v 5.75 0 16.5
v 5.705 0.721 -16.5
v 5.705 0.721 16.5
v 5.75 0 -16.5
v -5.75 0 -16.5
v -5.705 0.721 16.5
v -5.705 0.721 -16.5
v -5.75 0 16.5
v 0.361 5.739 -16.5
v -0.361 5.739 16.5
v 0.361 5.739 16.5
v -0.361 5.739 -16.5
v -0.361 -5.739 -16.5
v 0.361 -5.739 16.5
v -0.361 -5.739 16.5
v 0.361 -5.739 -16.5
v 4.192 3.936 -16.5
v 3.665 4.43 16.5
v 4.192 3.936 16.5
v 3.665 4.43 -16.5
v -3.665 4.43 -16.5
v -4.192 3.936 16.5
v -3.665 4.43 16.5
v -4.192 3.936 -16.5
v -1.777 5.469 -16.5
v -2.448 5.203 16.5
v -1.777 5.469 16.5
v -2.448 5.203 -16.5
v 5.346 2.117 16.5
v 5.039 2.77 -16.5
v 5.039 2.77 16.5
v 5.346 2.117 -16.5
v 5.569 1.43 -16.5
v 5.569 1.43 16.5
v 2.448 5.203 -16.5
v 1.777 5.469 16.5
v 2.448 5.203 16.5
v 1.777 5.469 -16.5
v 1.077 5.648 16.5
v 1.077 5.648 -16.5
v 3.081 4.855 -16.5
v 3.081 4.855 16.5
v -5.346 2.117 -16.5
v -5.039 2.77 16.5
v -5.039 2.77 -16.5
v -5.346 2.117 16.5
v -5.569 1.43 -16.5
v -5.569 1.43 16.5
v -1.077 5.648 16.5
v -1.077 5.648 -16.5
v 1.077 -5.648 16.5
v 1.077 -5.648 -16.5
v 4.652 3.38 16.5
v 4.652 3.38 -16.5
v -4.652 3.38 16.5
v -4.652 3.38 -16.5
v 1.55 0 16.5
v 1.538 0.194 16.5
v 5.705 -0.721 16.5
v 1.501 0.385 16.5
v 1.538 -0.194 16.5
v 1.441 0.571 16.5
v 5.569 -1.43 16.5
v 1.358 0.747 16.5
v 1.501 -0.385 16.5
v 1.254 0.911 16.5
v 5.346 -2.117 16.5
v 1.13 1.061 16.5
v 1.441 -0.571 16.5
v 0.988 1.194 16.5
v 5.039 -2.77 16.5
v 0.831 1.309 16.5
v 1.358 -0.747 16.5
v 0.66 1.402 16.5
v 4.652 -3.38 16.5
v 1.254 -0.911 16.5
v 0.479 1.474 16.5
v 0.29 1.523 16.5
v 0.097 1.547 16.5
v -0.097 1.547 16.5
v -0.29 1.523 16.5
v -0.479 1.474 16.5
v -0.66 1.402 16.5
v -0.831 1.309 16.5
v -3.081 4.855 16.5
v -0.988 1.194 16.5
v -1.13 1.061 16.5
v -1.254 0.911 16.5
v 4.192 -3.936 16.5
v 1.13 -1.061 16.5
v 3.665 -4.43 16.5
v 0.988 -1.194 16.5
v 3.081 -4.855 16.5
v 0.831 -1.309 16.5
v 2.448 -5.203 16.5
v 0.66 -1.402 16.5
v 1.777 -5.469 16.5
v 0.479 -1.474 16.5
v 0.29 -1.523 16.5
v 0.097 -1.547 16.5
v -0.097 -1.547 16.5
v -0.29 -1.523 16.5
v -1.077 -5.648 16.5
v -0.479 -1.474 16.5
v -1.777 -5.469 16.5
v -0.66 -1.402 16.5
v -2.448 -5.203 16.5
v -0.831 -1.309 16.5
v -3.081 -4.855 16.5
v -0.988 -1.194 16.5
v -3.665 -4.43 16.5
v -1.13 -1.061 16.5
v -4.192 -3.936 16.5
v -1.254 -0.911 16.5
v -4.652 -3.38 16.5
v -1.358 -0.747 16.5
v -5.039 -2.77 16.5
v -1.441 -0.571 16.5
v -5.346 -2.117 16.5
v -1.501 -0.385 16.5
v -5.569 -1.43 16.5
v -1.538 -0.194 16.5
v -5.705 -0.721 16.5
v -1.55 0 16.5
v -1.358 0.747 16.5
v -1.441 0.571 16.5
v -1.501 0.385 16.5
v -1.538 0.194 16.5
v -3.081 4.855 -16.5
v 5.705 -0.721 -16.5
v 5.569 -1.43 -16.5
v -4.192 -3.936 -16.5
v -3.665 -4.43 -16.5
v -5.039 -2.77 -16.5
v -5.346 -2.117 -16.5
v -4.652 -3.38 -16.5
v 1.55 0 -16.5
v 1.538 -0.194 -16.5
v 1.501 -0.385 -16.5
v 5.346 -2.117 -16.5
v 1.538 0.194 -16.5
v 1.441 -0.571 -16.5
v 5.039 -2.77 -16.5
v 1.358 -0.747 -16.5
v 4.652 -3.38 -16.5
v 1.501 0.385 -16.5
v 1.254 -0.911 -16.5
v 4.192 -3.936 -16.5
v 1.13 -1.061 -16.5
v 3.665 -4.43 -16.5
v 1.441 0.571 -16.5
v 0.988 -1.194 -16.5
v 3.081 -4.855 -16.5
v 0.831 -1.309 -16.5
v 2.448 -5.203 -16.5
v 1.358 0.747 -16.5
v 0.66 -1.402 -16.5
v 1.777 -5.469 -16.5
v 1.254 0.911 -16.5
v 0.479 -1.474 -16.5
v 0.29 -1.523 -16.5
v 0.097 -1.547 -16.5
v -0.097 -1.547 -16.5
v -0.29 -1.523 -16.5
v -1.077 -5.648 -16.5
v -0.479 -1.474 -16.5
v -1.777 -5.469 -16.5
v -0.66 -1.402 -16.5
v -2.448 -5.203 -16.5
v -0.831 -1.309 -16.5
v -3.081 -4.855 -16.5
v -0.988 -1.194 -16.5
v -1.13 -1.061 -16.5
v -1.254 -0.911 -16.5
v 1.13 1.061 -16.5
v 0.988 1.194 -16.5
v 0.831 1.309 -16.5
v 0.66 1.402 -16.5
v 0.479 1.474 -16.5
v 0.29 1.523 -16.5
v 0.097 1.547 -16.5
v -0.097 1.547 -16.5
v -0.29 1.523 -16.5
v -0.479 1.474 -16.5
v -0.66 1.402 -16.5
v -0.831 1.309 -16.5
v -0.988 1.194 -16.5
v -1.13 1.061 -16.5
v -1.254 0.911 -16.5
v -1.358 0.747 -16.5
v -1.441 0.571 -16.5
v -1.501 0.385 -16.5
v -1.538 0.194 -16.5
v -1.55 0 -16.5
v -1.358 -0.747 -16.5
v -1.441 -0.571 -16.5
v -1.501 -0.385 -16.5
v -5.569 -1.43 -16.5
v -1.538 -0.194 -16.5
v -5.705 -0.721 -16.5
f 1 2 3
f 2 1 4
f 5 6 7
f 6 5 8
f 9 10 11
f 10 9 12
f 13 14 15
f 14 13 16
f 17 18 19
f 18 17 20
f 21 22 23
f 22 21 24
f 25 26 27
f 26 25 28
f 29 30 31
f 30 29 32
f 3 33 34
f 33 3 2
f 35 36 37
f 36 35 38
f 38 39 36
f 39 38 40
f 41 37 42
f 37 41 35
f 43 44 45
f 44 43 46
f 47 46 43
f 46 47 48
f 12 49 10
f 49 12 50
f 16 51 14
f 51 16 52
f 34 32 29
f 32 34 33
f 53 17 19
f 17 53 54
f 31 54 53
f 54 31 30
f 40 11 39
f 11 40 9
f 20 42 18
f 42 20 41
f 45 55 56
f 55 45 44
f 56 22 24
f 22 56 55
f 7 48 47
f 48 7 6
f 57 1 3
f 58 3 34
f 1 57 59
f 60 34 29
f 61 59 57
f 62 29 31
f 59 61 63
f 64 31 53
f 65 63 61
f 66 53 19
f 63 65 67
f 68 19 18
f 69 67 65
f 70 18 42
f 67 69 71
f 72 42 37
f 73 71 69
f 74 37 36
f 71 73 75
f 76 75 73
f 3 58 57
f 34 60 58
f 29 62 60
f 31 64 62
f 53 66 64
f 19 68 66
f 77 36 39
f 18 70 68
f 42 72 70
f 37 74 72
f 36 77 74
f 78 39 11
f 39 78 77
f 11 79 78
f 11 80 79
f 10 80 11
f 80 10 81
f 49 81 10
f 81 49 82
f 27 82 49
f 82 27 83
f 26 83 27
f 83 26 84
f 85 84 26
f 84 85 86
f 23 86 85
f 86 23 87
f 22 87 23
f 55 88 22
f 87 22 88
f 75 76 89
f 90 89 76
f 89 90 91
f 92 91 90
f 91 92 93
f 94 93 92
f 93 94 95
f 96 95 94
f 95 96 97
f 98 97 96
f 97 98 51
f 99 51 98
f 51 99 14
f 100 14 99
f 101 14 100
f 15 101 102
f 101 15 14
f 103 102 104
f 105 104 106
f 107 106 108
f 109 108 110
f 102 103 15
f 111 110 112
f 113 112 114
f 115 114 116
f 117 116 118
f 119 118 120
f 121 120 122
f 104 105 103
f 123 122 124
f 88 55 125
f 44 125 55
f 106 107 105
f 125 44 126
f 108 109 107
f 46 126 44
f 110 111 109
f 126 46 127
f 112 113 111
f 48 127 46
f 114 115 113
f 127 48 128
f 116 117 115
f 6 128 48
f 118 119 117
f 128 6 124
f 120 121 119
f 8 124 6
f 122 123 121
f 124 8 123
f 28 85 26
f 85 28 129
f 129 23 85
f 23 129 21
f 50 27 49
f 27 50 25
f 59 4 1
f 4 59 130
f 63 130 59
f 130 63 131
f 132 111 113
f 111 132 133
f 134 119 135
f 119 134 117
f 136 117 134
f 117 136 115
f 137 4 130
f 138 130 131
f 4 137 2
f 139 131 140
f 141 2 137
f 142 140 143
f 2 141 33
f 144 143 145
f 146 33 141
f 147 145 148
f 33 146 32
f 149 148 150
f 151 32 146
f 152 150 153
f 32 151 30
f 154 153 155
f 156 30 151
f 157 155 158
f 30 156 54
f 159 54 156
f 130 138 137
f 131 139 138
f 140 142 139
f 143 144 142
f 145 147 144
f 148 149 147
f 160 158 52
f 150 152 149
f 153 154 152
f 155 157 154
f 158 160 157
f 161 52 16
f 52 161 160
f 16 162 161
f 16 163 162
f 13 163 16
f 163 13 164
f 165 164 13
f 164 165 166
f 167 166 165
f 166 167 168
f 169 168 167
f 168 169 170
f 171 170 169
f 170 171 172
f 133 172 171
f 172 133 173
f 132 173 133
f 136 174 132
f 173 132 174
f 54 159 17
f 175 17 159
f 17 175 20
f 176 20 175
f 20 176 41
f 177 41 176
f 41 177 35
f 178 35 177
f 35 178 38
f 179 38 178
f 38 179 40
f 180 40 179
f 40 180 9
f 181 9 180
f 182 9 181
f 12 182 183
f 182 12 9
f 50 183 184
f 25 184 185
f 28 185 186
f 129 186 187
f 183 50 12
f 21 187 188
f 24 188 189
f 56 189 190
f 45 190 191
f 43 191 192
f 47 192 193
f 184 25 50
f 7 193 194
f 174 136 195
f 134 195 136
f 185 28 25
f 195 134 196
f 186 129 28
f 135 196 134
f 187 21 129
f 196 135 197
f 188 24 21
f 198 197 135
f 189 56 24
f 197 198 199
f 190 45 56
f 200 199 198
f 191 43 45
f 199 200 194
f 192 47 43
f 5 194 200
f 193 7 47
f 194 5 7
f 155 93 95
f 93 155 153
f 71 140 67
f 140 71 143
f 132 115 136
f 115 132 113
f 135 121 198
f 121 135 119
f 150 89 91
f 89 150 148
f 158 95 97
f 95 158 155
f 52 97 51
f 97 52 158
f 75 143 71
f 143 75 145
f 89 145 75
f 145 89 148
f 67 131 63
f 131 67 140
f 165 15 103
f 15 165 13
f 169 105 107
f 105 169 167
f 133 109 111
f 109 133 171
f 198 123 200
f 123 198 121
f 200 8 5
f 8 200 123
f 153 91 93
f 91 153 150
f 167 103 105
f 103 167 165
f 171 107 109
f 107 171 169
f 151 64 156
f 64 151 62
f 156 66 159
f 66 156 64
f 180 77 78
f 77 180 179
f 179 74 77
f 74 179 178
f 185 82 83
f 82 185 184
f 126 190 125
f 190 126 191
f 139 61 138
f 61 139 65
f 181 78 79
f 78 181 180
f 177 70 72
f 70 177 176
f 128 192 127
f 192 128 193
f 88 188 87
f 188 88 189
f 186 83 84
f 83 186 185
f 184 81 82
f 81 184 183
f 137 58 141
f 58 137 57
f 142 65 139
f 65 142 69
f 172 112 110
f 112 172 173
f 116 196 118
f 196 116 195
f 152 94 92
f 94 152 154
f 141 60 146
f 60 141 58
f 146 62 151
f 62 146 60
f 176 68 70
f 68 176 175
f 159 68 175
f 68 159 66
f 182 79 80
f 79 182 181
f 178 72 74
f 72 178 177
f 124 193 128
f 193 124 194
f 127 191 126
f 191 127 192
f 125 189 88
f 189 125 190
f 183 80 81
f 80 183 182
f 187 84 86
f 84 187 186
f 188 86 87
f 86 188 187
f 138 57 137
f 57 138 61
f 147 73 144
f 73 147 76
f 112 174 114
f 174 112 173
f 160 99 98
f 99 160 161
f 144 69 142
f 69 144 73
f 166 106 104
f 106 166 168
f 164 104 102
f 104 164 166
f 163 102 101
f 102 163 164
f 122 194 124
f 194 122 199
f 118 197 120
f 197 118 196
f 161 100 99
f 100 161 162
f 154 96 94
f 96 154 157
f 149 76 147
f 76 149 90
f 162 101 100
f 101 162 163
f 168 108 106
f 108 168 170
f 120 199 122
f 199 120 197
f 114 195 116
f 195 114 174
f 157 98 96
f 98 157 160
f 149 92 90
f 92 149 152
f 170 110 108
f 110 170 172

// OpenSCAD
$fn = 50;


difference() {
	union() {
		translate(v = [0, 0, -16.5000000000]) {
			cylinder(h = 33, r = 5.7500000000);
		}
	}
	union() {
		translate(v = [0, 0, -100.0000000000]) {
			cylinder(h = 200, r = 1.5500000000);
		}
	}
}
